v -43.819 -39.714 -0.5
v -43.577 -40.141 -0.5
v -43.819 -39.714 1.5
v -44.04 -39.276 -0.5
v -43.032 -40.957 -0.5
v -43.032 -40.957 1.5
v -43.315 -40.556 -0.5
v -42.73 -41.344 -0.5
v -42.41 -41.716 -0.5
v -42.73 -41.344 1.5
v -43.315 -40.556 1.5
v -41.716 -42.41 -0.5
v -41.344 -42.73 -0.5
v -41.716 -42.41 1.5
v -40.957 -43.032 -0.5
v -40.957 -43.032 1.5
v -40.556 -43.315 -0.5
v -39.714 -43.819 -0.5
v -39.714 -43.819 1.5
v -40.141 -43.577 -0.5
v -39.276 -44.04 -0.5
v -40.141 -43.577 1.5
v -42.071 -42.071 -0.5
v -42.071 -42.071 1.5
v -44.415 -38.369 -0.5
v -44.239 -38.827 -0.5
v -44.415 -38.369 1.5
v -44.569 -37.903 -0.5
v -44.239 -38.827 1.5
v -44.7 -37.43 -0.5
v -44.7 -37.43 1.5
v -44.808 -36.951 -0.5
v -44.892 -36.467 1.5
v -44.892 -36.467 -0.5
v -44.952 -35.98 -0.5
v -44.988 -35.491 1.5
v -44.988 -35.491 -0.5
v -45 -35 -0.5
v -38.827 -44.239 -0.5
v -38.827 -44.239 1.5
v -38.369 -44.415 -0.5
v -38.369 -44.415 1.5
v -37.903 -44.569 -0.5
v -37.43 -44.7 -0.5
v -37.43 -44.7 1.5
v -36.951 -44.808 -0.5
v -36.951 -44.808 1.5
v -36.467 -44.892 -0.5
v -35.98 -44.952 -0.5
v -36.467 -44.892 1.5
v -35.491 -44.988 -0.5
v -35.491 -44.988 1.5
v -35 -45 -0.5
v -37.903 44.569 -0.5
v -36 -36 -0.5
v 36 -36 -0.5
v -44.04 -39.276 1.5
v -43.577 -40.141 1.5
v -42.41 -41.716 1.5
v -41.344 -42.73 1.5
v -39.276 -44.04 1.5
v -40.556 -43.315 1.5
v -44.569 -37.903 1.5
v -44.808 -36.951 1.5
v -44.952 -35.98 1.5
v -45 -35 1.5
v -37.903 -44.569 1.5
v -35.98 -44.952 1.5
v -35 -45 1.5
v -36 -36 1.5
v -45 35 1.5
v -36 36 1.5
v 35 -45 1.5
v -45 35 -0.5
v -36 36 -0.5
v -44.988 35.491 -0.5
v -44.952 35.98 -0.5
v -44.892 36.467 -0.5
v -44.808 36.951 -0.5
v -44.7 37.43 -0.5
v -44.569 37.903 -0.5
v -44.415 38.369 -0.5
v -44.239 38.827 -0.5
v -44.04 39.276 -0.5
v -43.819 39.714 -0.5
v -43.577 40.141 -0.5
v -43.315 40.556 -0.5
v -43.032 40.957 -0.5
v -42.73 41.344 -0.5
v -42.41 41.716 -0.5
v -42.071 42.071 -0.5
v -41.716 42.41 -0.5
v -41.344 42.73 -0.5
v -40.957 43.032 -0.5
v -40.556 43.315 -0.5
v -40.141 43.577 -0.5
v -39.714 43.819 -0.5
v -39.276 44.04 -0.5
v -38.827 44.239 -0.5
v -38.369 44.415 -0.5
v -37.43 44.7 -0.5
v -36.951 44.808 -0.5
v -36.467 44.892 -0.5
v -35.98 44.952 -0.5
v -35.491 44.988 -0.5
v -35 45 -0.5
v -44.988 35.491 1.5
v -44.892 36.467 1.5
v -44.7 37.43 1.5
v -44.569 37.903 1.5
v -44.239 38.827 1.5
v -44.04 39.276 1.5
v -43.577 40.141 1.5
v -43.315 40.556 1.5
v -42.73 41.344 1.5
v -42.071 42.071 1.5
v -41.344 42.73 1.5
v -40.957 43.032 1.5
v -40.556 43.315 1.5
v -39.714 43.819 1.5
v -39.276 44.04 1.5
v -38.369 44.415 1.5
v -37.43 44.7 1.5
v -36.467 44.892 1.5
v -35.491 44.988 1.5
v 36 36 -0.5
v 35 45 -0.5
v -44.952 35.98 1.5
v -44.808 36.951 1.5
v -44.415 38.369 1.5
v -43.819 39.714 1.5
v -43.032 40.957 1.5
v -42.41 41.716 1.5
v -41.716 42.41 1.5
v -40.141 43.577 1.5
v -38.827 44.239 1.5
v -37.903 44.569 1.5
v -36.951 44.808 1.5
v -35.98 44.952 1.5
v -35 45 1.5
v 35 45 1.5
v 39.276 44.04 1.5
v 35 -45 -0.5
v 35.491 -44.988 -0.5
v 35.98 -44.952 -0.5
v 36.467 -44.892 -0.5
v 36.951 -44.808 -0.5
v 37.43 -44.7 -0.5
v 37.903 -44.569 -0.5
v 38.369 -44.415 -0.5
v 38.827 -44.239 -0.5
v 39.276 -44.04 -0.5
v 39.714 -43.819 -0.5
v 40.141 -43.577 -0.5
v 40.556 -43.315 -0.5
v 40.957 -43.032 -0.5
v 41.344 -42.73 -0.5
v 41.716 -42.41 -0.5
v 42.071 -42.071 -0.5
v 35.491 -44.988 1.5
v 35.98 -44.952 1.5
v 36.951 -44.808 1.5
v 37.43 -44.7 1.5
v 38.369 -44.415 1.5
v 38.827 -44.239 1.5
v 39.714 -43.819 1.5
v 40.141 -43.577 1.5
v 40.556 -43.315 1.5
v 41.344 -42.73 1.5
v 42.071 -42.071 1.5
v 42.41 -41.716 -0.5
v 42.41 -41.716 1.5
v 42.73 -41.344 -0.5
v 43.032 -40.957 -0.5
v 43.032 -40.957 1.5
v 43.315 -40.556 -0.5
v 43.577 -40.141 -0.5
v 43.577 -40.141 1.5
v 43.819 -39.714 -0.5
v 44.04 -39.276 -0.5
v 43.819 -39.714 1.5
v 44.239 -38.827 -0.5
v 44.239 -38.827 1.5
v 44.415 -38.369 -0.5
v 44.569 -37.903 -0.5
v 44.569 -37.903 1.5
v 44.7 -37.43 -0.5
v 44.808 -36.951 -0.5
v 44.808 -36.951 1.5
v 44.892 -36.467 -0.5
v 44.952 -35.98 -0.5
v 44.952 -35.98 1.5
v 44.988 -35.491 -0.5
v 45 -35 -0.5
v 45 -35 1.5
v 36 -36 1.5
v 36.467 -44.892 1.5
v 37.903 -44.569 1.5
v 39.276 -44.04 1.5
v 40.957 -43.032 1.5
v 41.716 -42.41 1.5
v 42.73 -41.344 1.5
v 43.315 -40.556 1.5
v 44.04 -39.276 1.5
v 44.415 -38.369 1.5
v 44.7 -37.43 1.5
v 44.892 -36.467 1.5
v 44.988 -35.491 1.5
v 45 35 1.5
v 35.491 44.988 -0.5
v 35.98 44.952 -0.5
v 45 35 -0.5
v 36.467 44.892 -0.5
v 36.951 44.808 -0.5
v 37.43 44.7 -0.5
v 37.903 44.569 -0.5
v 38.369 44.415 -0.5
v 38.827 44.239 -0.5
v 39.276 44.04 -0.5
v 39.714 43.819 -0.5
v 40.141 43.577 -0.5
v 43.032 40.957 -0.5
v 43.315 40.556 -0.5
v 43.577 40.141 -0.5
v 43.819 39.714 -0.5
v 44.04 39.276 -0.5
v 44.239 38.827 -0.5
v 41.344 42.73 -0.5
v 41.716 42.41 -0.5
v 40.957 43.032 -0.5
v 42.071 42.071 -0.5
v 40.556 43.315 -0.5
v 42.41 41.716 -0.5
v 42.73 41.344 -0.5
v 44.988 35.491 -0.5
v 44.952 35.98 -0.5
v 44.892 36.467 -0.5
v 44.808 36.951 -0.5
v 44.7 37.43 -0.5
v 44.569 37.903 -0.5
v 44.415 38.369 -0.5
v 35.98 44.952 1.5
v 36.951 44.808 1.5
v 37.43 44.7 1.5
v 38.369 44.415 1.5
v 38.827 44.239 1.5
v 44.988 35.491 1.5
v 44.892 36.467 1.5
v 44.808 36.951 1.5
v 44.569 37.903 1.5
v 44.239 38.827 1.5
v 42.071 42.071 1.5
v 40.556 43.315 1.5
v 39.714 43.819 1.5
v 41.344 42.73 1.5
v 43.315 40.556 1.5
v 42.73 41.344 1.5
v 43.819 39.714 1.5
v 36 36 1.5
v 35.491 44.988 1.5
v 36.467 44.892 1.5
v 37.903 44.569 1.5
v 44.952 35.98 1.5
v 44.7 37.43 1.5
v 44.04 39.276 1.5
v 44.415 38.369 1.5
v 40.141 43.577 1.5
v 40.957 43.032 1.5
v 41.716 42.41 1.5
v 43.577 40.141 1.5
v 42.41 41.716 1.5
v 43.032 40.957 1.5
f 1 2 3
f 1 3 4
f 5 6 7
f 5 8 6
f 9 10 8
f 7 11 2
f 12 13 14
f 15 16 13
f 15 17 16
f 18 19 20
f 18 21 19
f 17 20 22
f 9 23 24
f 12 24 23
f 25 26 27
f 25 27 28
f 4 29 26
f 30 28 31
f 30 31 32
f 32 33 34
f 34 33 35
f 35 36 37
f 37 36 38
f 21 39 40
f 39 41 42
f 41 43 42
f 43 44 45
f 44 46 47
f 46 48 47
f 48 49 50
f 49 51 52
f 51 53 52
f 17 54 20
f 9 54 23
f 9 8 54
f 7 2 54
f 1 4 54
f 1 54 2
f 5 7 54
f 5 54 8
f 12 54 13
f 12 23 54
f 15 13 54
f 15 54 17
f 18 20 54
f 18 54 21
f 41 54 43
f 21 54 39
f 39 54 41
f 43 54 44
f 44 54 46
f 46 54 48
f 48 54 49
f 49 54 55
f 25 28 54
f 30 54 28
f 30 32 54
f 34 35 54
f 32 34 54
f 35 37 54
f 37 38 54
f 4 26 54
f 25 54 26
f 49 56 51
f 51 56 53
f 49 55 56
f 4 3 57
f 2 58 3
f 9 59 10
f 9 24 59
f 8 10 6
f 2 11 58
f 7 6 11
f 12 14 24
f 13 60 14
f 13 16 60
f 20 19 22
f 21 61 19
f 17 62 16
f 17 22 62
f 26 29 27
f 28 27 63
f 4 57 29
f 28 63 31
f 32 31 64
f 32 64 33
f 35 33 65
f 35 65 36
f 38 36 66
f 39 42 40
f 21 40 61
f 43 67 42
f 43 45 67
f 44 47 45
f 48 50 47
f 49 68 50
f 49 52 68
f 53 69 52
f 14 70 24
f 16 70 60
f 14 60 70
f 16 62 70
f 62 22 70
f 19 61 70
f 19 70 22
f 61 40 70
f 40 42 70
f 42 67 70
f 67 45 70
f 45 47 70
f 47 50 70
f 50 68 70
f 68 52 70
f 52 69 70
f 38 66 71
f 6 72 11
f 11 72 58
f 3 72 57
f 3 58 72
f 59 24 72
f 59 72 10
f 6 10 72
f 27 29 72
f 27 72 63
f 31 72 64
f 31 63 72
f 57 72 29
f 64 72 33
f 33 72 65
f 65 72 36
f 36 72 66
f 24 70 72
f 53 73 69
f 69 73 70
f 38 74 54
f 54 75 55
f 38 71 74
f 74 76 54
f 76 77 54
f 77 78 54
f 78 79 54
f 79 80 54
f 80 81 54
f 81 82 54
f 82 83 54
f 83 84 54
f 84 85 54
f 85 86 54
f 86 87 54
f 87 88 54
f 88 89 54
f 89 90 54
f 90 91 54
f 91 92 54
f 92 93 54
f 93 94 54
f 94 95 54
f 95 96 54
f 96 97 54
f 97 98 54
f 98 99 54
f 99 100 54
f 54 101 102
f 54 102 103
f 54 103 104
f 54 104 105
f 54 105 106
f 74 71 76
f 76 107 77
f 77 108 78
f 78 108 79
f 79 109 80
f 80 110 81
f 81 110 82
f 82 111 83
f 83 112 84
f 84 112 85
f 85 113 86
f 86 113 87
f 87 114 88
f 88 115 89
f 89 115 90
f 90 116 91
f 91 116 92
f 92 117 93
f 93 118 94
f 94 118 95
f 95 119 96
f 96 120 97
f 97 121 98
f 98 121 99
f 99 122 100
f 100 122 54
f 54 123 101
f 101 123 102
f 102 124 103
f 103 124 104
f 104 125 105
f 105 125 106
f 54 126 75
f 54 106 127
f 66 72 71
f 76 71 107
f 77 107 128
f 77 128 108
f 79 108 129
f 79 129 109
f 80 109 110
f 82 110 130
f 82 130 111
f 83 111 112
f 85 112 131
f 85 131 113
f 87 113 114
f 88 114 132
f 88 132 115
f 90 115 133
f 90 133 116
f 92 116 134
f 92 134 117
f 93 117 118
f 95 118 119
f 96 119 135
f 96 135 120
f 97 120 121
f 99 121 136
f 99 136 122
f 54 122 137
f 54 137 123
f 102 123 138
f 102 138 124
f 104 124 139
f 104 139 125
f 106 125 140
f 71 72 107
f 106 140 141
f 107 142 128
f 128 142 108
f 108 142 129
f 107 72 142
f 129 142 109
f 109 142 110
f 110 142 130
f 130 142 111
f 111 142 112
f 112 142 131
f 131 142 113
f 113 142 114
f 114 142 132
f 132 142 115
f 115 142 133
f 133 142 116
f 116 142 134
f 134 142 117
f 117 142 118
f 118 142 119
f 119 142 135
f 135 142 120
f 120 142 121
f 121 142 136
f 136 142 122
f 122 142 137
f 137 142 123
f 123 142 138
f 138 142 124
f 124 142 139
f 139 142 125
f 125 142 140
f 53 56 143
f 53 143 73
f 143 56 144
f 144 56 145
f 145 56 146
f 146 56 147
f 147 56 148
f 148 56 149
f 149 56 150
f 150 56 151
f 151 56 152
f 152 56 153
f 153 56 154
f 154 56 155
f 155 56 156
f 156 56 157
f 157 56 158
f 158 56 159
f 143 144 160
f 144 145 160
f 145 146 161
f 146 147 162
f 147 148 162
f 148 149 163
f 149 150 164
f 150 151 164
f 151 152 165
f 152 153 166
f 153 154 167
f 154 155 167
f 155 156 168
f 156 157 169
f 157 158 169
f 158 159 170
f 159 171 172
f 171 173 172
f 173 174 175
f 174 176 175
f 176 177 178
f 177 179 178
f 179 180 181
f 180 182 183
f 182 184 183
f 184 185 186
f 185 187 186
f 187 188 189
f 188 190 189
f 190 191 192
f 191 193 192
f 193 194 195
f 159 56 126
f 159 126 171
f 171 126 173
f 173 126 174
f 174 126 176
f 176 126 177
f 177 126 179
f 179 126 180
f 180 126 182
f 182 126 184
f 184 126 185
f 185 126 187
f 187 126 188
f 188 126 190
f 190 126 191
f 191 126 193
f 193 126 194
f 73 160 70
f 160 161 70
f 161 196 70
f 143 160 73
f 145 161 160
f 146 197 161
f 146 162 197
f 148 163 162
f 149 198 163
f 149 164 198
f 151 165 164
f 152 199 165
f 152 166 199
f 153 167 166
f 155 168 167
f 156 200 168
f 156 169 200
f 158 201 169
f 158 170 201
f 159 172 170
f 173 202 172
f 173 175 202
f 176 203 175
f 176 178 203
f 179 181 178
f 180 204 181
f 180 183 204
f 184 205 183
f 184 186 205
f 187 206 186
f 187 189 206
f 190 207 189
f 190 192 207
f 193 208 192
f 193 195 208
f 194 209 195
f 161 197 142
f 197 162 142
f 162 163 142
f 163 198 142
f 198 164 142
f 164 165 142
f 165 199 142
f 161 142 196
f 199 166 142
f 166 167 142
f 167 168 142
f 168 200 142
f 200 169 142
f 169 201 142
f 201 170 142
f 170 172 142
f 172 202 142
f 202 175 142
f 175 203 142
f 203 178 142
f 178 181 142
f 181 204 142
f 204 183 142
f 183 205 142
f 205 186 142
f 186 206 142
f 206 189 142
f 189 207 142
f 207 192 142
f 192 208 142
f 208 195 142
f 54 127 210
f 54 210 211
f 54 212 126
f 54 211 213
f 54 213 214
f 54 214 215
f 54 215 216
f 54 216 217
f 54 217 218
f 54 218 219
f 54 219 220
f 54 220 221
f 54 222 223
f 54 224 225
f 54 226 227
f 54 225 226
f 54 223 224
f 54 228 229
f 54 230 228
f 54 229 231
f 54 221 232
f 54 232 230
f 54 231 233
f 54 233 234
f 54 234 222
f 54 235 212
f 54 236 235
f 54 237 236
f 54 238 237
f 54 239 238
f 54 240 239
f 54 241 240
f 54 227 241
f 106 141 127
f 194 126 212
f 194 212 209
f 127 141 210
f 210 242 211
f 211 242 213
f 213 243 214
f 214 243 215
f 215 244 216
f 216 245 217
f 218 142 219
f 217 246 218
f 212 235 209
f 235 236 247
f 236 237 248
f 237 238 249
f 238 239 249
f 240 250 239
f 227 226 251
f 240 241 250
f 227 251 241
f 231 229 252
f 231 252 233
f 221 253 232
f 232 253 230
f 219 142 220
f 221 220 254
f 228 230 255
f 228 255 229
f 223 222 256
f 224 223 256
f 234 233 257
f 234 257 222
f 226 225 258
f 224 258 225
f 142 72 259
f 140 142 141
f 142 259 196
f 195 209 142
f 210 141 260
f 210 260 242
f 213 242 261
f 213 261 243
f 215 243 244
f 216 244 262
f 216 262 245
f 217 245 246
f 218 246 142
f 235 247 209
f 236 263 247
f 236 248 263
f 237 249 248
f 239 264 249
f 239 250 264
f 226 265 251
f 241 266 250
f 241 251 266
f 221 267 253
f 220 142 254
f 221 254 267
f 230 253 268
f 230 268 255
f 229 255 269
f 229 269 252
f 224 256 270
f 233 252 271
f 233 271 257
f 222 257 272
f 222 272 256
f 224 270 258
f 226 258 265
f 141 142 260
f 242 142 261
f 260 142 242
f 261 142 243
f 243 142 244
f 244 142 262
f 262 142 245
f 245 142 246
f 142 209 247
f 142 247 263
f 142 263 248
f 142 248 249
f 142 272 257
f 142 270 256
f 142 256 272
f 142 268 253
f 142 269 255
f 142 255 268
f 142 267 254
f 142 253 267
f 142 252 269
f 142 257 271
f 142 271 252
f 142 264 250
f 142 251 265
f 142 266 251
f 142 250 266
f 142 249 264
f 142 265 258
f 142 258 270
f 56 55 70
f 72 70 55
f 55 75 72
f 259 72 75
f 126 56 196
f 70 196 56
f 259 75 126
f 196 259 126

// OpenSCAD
edge = 90;
padding = edge / 5;
height = 2;
radius = 10;

module pad(edge, height) {
  minkowski() {
    cube([edge - radius * 2, edge - radius * 2, height - 1], center = true);
    cylinder(r = radius, $fn = 128);
  }
}

difference() {
  color([0.7,0.255,0.4]) pad(edge, height);
  cube([edge - padding, edge - padding, height * 2], center = true);
}
